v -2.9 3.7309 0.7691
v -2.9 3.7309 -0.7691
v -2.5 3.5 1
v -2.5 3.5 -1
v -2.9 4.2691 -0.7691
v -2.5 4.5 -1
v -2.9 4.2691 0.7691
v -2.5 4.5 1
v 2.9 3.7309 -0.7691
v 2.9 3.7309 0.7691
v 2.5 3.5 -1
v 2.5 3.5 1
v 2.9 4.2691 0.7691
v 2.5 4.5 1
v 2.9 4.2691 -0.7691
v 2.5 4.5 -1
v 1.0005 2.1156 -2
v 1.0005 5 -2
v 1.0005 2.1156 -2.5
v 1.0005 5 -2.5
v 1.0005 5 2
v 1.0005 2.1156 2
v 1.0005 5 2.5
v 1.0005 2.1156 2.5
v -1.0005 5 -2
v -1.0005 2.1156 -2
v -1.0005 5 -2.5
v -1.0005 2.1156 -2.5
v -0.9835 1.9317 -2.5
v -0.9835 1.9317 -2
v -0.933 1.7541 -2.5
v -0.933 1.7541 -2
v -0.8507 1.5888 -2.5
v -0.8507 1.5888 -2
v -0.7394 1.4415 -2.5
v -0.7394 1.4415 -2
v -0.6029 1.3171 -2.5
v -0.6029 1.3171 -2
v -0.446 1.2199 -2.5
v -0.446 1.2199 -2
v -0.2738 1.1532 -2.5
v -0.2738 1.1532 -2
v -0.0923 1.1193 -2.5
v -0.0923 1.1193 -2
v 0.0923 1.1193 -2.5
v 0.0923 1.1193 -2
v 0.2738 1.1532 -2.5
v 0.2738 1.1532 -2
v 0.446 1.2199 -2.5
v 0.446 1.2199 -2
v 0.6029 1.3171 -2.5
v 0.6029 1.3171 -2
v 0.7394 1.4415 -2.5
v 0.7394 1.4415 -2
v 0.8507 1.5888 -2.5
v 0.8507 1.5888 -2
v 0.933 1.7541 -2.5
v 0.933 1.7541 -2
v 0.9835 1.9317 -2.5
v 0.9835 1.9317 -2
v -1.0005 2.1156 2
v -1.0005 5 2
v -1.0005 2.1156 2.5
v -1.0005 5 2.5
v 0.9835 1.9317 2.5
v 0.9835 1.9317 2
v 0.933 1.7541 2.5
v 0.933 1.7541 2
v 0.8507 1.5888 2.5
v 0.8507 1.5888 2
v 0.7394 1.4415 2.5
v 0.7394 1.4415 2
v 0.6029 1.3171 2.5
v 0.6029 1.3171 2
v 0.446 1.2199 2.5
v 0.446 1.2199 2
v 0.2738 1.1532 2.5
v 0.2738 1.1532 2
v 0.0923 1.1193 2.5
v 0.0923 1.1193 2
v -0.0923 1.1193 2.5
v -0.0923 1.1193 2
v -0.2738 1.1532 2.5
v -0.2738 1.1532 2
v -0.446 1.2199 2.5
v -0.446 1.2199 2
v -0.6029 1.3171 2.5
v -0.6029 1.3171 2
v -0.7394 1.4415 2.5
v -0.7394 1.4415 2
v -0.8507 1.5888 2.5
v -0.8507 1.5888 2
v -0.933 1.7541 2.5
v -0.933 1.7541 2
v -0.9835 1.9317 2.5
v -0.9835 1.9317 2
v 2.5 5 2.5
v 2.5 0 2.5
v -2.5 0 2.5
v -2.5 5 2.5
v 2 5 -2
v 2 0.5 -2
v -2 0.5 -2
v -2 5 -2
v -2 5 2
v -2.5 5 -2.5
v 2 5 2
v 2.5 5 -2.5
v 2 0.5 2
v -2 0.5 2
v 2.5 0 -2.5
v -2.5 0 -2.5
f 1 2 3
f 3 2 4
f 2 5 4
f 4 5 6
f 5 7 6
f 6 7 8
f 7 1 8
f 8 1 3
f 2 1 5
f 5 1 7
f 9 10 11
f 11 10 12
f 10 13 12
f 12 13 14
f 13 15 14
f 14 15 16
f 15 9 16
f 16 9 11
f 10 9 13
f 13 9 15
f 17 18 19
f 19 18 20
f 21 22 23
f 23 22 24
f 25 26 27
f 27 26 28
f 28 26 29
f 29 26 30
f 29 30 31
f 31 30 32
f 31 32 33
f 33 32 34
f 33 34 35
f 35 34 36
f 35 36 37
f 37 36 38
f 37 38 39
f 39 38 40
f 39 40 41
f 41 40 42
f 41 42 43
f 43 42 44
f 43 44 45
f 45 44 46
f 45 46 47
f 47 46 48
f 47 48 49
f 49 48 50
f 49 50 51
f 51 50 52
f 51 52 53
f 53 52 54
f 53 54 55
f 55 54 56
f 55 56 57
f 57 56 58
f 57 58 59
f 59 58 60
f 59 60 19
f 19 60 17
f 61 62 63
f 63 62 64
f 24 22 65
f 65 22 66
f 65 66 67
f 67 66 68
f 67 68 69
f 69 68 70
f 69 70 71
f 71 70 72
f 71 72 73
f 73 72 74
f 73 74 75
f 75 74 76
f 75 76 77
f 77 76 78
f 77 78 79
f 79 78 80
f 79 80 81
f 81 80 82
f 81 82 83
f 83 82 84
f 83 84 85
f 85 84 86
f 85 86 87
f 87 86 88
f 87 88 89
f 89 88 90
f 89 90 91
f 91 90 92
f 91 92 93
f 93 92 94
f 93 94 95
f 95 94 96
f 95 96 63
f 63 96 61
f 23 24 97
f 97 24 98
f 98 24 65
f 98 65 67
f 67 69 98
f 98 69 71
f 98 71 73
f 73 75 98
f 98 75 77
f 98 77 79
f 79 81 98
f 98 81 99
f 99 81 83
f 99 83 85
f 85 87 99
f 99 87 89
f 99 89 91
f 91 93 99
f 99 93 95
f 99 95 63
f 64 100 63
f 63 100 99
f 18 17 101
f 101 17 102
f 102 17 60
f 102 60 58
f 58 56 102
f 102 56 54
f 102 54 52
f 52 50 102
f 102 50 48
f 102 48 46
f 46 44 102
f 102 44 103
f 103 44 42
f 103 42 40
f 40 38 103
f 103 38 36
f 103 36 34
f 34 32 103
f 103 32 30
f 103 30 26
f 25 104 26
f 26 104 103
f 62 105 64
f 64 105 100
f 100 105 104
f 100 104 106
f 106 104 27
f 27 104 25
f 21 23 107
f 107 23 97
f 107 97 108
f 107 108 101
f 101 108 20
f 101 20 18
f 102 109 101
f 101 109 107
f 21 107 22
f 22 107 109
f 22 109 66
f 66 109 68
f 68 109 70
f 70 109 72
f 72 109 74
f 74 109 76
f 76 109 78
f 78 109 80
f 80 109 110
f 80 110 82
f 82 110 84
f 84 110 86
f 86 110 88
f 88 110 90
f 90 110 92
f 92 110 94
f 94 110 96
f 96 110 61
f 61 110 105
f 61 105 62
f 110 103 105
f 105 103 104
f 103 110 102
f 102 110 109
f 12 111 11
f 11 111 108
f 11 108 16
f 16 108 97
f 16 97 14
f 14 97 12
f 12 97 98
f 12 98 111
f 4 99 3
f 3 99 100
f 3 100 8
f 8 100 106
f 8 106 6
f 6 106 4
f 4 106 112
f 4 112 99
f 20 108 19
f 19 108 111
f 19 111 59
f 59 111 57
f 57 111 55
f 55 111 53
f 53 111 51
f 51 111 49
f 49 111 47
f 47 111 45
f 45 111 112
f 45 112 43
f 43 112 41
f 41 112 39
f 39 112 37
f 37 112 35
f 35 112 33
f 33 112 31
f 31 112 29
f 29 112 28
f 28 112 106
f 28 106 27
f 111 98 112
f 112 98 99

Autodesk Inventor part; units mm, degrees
ref_plane "YZ Plane" through (0, 0, 0) normal (1, 0, 0) x (0, 1, 0)
ref_plane "XZ Plane" through (0, 0, 0) normal (0, 1, 0) x (-1, 0, 0)
ref_plane "XY Plane" through (0, 0, 0) normal (0, 0, 1) x (1, 0, 0)
sketch "Sketch1" plane through (0, 0, 0) normal (0, 1, 0) x (-1, 0, 0)
  line L0 (-2.5, 2.5) -> (2.5, 2.5)
  line L1 (2.5, 2.5) -> (2.5, -2.5)
  line L2 (2.5, -2.5) -> (-2.5, -2.5)
  line L3 (-2.5, -2.5) -> (-2.5, 2.5)
  line L4 (-2.5, 2.5) -> (2.5, -2.5) construction
  line L5 (2.5, 2.5) -> (-2.5, -2.5) construction
  point P0 (0, 0)
  dimension "d0" = 5
  dimension "d1" = 5
extrude "Extrusion1" add sketch "Sketch1" along normal blind 5
shell "Shell1" thickness 0.5 removed faces 1 at (-0.8333, 5, -0.8333)
sketch "Sketch3" plane through (-2.5, 0, 2.5) normal (0, 0, 1) x (1, 0, 0)
  line L0 (2.5, 9.1674) -> (2.5, 2.1156) construction
  line L1 (1.4995, 9.1674) -> (1.4995, 2.1156)
  line L2 (3.5005, 2.1156) -> (3.5005, 9.1674)
  arc A0 (3.5005, 9.1674) -> (1.4995, 9.1674) centre (2.5, 9.1674) ccw
  arc A1 (1.4995, 2.1156) -> (3.5005, 2.1156) centre (2.5, 2.1156) ccw
  point P0 (2.5, 0)
  point P1 (2.5, 5.6415)
extrude "Extrusion3" cut sketch "Sketch3" against normal through all
sketch "Sketch4" plane through (0, 5, 0) normal (0, 1, 0) x (1, 0, 0)
  point P0 (0, 0)
sketch "Sketch5" plane through (0, 5, 0) normal (0, 1, 0) x (1, 0, 0)
  point P0 (0, 0)
sketch "Sketch6" plane through (0, 5, 0) normal (0, 1, 0) x (1, 0, 0)
  point P0 (0, 0)
sketch "Sketch7" plane through (0, 0, 0) normal (0, -1, 0) x (1, 0, 0)
  point P0 (0, 0)
sketch "Sketch8" plane through (-2.5, 0, -2.5) normal (-1, 0, 0) x (0, 0, 1)
  point P0 (2.5, 0)
sketch "Sketch9" plane through (2.5, 0, 2.5) normal (1, 0, 0) x (0, 0, -1)
  line L0 (1.5, 3.5) -> (3.5, 3.5)
  line L1 (3.5, 3.5) -> (3.5, 4.5)
  line L2 (3.5, 4.5) -> (1.5, 4.5)
  line L3 (1.5, 4.5) -> (1.5, 3.5)
  line L4 (1.5, 3.5) -> (3.5, 4.5) construction
  line L5 (3.5, 3.5) -> (1.5, 4.5) construction
  line L6 (0, 5) -> (5, 5) projected
  point P0 (2.5, 0)
  point P1 (2.5, 4)
  dimension "d10" = 1
  dimension "d14" = 2
  dimension "d15" = 1
extrude "Extrusion4" add sketch "Sketch9" along normal blind 0.4 draft -30
sketch "Sketch10" plane through (-2.5, 0, -2.5) normal (-1, 0, 0) x (0, 0, 1)
  line L0 (1.5, 3.5) -> (3.5, 3.5)
  line L1 (3.5, 3.5) -> (3.5, 4.5)
  line L2 (3.5, 4.5) -> (1.5, 4.5)
  line L3 (1.5, 4.5) -> (1.5, 3.5)
  line L4 (1.5, 3.5) -> (3.5, 4.5) construction
  line L5 (3.5, 3.5) -> (1.5, 4.5) construction
  line L6 (0, 5) -> (5, 5) projected
  point P0 (2.5, 0)
  point P1 (2.5, 4)
  dimension "d13" = 1
  dimension "d16" = 2
  dimension "d17" = 1
extrude "Extrusion5" add sketch "Sketch10" along normal blind 0.4 draft -30
equation "\"d16\" = d14"
equation "\"d17\" = d15"
properties part number "snapfit_v09"
